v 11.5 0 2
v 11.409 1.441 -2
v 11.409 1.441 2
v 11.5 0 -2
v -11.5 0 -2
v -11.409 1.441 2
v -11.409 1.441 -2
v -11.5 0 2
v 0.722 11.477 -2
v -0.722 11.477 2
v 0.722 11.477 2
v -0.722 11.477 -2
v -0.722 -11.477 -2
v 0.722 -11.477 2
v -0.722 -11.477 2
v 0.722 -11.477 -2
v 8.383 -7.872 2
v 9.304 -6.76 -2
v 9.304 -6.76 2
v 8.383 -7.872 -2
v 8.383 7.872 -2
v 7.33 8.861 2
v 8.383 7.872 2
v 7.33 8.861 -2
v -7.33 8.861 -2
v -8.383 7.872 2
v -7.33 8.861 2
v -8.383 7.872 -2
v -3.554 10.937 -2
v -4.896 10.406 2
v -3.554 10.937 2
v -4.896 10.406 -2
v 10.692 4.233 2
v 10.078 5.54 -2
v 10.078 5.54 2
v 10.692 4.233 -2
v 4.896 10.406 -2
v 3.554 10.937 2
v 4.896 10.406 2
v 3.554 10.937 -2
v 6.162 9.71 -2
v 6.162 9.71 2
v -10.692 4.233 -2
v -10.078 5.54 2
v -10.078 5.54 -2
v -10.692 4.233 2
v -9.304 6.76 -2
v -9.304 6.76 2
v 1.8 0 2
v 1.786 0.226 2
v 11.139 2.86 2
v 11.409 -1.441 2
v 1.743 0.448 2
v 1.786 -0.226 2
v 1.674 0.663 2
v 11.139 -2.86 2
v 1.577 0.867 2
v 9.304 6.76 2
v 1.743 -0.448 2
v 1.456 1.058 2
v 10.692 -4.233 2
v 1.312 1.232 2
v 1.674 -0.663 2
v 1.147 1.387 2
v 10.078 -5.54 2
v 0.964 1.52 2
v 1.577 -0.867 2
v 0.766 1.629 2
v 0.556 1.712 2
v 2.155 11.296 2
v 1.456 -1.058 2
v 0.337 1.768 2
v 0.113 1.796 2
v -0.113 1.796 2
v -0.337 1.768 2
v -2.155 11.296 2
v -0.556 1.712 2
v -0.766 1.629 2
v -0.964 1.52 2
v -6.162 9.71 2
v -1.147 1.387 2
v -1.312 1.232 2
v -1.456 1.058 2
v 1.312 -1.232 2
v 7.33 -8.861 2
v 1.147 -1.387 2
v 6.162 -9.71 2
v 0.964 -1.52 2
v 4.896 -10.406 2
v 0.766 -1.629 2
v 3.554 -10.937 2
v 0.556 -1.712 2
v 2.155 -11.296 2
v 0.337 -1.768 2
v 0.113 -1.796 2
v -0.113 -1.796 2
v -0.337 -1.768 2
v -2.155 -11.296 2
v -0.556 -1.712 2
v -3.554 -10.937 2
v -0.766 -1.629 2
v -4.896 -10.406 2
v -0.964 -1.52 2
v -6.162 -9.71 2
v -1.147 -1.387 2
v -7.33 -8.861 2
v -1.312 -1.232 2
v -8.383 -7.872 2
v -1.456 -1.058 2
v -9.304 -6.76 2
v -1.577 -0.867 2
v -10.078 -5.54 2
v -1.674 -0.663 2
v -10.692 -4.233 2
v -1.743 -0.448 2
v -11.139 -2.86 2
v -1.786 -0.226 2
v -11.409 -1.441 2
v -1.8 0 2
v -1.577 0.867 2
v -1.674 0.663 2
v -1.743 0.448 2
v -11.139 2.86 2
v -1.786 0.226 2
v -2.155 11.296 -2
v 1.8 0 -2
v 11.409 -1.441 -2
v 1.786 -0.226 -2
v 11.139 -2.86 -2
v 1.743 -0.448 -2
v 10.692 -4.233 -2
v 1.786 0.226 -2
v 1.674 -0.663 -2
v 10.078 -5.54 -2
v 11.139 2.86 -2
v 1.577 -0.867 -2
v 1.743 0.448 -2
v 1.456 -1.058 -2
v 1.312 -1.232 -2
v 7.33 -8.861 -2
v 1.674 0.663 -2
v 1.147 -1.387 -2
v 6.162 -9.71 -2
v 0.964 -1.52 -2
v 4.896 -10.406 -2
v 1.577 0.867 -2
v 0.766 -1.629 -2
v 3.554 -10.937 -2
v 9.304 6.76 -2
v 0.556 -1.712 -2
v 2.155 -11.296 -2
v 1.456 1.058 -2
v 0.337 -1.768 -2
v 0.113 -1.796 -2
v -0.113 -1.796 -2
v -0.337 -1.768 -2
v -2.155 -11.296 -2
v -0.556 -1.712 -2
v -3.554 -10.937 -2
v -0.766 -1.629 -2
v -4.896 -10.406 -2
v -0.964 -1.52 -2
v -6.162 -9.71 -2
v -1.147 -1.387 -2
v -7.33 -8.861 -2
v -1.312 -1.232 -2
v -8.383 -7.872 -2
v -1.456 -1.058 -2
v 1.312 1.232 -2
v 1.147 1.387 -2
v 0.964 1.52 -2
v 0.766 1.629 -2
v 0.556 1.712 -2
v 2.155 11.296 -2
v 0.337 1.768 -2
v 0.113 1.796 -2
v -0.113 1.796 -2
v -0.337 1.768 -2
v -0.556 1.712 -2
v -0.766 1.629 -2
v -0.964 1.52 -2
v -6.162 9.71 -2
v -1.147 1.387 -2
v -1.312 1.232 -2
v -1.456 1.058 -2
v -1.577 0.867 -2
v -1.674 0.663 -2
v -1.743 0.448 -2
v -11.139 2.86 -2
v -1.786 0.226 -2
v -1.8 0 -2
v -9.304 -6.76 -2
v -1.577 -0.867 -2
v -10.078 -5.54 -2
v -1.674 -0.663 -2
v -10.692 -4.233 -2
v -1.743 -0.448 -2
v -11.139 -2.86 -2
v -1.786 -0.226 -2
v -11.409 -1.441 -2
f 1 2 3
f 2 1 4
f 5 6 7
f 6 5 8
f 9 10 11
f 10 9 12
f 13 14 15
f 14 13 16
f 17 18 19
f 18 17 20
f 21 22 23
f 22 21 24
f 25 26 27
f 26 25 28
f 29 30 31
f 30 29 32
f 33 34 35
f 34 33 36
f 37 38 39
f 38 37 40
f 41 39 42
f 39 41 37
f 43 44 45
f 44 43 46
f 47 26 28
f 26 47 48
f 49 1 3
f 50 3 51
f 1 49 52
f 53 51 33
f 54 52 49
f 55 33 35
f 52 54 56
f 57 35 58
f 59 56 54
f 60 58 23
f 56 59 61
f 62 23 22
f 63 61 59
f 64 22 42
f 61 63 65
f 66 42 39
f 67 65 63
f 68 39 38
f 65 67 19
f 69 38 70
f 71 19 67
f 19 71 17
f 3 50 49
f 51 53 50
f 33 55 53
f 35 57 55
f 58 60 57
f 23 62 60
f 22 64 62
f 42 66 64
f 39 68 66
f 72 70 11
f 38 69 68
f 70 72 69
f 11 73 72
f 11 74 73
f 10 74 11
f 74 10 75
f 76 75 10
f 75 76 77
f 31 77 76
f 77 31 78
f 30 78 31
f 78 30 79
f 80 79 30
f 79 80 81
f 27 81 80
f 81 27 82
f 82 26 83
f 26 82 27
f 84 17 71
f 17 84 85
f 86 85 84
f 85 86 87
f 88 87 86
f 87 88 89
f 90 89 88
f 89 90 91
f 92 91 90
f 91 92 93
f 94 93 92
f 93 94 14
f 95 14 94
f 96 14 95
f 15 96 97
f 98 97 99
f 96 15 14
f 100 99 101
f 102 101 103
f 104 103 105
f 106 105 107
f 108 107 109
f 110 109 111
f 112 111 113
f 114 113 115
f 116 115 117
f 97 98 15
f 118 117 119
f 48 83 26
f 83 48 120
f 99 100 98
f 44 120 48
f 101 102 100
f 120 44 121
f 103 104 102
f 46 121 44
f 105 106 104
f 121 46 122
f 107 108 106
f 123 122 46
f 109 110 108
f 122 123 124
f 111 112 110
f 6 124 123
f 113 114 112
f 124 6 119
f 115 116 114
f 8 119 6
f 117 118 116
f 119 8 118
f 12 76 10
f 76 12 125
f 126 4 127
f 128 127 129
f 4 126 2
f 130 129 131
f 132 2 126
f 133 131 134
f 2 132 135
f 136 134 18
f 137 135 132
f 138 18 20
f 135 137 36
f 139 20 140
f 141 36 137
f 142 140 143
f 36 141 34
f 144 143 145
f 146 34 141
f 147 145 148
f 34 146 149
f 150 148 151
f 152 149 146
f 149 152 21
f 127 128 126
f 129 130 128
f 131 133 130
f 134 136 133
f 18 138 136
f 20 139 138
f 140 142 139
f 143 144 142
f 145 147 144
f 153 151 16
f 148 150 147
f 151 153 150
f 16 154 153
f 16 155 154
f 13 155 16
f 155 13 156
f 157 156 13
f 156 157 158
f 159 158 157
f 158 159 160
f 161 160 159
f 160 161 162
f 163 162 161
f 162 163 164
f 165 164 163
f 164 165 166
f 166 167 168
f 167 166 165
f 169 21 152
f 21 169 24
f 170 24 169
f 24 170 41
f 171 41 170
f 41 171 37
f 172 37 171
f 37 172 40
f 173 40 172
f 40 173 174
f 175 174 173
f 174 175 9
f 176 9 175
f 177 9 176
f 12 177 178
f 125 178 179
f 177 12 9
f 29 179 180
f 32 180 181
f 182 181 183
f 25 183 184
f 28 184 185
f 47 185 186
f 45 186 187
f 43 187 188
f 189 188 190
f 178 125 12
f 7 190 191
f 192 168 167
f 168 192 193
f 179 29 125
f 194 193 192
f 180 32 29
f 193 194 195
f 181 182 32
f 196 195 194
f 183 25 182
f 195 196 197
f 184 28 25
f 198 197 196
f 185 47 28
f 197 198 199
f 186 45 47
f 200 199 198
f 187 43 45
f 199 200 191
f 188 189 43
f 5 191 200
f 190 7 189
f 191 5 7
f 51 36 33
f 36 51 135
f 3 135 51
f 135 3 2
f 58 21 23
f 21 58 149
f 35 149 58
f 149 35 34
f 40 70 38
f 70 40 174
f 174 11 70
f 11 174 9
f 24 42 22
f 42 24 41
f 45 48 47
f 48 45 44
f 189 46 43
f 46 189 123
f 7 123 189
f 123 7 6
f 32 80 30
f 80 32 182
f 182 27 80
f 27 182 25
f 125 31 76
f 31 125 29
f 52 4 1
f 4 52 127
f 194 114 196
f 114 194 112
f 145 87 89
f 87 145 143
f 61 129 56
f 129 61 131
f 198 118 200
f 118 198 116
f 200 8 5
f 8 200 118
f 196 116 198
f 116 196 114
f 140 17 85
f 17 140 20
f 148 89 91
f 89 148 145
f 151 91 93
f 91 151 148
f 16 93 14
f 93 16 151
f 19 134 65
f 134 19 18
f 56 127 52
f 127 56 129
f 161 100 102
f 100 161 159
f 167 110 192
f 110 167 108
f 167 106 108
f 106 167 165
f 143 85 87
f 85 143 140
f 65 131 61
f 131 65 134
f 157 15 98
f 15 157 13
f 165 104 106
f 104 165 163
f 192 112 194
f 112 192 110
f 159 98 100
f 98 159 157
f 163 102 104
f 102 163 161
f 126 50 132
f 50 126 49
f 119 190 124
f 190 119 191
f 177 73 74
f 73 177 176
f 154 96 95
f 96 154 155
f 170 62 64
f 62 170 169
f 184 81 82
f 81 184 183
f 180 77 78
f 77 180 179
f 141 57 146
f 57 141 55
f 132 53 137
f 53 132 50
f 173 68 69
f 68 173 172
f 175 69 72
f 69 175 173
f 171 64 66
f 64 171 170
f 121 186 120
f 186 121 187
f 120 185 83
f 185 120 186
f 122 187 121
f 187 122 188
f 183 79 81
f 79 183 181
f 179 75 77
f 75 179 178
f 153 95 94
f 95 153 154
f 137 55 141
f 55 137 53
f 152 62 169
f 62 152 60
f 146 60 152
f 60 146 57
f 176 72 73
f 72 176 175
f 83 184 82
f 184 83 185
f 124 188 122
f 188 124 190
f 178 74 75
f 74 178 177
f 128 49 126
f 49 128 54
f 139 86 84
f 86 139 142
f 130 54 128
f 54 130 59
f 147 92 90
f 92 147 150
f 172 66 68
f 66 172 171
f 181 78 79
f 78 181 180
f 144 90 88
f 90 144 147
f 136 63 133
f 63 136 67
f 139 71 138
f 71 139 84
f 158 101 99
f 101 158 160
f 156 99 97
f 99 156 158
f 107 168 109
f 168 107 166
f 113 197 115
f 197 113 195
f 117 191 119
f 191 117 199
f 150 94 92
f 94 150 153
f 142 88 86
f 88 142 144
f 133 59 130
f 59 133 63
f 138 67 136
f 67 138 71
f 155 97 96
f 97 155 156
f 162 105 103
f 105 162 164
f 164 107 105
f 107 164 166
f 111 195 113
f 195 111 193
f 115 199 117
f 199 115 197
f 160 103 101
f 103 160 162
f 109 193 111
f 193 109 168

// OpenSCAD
$fn = 50;


difference() {
	union() {
		translate(v = [0, 0, -2.0000000000]) {
			cylinder(h = 4, r = 11.5000000000);
		}
	}
	union() {
		translate(v = [0, 0, -100.0000000000]) {
			cylinder(h = 200, r = 1.8000000000);
		}
	}
}
